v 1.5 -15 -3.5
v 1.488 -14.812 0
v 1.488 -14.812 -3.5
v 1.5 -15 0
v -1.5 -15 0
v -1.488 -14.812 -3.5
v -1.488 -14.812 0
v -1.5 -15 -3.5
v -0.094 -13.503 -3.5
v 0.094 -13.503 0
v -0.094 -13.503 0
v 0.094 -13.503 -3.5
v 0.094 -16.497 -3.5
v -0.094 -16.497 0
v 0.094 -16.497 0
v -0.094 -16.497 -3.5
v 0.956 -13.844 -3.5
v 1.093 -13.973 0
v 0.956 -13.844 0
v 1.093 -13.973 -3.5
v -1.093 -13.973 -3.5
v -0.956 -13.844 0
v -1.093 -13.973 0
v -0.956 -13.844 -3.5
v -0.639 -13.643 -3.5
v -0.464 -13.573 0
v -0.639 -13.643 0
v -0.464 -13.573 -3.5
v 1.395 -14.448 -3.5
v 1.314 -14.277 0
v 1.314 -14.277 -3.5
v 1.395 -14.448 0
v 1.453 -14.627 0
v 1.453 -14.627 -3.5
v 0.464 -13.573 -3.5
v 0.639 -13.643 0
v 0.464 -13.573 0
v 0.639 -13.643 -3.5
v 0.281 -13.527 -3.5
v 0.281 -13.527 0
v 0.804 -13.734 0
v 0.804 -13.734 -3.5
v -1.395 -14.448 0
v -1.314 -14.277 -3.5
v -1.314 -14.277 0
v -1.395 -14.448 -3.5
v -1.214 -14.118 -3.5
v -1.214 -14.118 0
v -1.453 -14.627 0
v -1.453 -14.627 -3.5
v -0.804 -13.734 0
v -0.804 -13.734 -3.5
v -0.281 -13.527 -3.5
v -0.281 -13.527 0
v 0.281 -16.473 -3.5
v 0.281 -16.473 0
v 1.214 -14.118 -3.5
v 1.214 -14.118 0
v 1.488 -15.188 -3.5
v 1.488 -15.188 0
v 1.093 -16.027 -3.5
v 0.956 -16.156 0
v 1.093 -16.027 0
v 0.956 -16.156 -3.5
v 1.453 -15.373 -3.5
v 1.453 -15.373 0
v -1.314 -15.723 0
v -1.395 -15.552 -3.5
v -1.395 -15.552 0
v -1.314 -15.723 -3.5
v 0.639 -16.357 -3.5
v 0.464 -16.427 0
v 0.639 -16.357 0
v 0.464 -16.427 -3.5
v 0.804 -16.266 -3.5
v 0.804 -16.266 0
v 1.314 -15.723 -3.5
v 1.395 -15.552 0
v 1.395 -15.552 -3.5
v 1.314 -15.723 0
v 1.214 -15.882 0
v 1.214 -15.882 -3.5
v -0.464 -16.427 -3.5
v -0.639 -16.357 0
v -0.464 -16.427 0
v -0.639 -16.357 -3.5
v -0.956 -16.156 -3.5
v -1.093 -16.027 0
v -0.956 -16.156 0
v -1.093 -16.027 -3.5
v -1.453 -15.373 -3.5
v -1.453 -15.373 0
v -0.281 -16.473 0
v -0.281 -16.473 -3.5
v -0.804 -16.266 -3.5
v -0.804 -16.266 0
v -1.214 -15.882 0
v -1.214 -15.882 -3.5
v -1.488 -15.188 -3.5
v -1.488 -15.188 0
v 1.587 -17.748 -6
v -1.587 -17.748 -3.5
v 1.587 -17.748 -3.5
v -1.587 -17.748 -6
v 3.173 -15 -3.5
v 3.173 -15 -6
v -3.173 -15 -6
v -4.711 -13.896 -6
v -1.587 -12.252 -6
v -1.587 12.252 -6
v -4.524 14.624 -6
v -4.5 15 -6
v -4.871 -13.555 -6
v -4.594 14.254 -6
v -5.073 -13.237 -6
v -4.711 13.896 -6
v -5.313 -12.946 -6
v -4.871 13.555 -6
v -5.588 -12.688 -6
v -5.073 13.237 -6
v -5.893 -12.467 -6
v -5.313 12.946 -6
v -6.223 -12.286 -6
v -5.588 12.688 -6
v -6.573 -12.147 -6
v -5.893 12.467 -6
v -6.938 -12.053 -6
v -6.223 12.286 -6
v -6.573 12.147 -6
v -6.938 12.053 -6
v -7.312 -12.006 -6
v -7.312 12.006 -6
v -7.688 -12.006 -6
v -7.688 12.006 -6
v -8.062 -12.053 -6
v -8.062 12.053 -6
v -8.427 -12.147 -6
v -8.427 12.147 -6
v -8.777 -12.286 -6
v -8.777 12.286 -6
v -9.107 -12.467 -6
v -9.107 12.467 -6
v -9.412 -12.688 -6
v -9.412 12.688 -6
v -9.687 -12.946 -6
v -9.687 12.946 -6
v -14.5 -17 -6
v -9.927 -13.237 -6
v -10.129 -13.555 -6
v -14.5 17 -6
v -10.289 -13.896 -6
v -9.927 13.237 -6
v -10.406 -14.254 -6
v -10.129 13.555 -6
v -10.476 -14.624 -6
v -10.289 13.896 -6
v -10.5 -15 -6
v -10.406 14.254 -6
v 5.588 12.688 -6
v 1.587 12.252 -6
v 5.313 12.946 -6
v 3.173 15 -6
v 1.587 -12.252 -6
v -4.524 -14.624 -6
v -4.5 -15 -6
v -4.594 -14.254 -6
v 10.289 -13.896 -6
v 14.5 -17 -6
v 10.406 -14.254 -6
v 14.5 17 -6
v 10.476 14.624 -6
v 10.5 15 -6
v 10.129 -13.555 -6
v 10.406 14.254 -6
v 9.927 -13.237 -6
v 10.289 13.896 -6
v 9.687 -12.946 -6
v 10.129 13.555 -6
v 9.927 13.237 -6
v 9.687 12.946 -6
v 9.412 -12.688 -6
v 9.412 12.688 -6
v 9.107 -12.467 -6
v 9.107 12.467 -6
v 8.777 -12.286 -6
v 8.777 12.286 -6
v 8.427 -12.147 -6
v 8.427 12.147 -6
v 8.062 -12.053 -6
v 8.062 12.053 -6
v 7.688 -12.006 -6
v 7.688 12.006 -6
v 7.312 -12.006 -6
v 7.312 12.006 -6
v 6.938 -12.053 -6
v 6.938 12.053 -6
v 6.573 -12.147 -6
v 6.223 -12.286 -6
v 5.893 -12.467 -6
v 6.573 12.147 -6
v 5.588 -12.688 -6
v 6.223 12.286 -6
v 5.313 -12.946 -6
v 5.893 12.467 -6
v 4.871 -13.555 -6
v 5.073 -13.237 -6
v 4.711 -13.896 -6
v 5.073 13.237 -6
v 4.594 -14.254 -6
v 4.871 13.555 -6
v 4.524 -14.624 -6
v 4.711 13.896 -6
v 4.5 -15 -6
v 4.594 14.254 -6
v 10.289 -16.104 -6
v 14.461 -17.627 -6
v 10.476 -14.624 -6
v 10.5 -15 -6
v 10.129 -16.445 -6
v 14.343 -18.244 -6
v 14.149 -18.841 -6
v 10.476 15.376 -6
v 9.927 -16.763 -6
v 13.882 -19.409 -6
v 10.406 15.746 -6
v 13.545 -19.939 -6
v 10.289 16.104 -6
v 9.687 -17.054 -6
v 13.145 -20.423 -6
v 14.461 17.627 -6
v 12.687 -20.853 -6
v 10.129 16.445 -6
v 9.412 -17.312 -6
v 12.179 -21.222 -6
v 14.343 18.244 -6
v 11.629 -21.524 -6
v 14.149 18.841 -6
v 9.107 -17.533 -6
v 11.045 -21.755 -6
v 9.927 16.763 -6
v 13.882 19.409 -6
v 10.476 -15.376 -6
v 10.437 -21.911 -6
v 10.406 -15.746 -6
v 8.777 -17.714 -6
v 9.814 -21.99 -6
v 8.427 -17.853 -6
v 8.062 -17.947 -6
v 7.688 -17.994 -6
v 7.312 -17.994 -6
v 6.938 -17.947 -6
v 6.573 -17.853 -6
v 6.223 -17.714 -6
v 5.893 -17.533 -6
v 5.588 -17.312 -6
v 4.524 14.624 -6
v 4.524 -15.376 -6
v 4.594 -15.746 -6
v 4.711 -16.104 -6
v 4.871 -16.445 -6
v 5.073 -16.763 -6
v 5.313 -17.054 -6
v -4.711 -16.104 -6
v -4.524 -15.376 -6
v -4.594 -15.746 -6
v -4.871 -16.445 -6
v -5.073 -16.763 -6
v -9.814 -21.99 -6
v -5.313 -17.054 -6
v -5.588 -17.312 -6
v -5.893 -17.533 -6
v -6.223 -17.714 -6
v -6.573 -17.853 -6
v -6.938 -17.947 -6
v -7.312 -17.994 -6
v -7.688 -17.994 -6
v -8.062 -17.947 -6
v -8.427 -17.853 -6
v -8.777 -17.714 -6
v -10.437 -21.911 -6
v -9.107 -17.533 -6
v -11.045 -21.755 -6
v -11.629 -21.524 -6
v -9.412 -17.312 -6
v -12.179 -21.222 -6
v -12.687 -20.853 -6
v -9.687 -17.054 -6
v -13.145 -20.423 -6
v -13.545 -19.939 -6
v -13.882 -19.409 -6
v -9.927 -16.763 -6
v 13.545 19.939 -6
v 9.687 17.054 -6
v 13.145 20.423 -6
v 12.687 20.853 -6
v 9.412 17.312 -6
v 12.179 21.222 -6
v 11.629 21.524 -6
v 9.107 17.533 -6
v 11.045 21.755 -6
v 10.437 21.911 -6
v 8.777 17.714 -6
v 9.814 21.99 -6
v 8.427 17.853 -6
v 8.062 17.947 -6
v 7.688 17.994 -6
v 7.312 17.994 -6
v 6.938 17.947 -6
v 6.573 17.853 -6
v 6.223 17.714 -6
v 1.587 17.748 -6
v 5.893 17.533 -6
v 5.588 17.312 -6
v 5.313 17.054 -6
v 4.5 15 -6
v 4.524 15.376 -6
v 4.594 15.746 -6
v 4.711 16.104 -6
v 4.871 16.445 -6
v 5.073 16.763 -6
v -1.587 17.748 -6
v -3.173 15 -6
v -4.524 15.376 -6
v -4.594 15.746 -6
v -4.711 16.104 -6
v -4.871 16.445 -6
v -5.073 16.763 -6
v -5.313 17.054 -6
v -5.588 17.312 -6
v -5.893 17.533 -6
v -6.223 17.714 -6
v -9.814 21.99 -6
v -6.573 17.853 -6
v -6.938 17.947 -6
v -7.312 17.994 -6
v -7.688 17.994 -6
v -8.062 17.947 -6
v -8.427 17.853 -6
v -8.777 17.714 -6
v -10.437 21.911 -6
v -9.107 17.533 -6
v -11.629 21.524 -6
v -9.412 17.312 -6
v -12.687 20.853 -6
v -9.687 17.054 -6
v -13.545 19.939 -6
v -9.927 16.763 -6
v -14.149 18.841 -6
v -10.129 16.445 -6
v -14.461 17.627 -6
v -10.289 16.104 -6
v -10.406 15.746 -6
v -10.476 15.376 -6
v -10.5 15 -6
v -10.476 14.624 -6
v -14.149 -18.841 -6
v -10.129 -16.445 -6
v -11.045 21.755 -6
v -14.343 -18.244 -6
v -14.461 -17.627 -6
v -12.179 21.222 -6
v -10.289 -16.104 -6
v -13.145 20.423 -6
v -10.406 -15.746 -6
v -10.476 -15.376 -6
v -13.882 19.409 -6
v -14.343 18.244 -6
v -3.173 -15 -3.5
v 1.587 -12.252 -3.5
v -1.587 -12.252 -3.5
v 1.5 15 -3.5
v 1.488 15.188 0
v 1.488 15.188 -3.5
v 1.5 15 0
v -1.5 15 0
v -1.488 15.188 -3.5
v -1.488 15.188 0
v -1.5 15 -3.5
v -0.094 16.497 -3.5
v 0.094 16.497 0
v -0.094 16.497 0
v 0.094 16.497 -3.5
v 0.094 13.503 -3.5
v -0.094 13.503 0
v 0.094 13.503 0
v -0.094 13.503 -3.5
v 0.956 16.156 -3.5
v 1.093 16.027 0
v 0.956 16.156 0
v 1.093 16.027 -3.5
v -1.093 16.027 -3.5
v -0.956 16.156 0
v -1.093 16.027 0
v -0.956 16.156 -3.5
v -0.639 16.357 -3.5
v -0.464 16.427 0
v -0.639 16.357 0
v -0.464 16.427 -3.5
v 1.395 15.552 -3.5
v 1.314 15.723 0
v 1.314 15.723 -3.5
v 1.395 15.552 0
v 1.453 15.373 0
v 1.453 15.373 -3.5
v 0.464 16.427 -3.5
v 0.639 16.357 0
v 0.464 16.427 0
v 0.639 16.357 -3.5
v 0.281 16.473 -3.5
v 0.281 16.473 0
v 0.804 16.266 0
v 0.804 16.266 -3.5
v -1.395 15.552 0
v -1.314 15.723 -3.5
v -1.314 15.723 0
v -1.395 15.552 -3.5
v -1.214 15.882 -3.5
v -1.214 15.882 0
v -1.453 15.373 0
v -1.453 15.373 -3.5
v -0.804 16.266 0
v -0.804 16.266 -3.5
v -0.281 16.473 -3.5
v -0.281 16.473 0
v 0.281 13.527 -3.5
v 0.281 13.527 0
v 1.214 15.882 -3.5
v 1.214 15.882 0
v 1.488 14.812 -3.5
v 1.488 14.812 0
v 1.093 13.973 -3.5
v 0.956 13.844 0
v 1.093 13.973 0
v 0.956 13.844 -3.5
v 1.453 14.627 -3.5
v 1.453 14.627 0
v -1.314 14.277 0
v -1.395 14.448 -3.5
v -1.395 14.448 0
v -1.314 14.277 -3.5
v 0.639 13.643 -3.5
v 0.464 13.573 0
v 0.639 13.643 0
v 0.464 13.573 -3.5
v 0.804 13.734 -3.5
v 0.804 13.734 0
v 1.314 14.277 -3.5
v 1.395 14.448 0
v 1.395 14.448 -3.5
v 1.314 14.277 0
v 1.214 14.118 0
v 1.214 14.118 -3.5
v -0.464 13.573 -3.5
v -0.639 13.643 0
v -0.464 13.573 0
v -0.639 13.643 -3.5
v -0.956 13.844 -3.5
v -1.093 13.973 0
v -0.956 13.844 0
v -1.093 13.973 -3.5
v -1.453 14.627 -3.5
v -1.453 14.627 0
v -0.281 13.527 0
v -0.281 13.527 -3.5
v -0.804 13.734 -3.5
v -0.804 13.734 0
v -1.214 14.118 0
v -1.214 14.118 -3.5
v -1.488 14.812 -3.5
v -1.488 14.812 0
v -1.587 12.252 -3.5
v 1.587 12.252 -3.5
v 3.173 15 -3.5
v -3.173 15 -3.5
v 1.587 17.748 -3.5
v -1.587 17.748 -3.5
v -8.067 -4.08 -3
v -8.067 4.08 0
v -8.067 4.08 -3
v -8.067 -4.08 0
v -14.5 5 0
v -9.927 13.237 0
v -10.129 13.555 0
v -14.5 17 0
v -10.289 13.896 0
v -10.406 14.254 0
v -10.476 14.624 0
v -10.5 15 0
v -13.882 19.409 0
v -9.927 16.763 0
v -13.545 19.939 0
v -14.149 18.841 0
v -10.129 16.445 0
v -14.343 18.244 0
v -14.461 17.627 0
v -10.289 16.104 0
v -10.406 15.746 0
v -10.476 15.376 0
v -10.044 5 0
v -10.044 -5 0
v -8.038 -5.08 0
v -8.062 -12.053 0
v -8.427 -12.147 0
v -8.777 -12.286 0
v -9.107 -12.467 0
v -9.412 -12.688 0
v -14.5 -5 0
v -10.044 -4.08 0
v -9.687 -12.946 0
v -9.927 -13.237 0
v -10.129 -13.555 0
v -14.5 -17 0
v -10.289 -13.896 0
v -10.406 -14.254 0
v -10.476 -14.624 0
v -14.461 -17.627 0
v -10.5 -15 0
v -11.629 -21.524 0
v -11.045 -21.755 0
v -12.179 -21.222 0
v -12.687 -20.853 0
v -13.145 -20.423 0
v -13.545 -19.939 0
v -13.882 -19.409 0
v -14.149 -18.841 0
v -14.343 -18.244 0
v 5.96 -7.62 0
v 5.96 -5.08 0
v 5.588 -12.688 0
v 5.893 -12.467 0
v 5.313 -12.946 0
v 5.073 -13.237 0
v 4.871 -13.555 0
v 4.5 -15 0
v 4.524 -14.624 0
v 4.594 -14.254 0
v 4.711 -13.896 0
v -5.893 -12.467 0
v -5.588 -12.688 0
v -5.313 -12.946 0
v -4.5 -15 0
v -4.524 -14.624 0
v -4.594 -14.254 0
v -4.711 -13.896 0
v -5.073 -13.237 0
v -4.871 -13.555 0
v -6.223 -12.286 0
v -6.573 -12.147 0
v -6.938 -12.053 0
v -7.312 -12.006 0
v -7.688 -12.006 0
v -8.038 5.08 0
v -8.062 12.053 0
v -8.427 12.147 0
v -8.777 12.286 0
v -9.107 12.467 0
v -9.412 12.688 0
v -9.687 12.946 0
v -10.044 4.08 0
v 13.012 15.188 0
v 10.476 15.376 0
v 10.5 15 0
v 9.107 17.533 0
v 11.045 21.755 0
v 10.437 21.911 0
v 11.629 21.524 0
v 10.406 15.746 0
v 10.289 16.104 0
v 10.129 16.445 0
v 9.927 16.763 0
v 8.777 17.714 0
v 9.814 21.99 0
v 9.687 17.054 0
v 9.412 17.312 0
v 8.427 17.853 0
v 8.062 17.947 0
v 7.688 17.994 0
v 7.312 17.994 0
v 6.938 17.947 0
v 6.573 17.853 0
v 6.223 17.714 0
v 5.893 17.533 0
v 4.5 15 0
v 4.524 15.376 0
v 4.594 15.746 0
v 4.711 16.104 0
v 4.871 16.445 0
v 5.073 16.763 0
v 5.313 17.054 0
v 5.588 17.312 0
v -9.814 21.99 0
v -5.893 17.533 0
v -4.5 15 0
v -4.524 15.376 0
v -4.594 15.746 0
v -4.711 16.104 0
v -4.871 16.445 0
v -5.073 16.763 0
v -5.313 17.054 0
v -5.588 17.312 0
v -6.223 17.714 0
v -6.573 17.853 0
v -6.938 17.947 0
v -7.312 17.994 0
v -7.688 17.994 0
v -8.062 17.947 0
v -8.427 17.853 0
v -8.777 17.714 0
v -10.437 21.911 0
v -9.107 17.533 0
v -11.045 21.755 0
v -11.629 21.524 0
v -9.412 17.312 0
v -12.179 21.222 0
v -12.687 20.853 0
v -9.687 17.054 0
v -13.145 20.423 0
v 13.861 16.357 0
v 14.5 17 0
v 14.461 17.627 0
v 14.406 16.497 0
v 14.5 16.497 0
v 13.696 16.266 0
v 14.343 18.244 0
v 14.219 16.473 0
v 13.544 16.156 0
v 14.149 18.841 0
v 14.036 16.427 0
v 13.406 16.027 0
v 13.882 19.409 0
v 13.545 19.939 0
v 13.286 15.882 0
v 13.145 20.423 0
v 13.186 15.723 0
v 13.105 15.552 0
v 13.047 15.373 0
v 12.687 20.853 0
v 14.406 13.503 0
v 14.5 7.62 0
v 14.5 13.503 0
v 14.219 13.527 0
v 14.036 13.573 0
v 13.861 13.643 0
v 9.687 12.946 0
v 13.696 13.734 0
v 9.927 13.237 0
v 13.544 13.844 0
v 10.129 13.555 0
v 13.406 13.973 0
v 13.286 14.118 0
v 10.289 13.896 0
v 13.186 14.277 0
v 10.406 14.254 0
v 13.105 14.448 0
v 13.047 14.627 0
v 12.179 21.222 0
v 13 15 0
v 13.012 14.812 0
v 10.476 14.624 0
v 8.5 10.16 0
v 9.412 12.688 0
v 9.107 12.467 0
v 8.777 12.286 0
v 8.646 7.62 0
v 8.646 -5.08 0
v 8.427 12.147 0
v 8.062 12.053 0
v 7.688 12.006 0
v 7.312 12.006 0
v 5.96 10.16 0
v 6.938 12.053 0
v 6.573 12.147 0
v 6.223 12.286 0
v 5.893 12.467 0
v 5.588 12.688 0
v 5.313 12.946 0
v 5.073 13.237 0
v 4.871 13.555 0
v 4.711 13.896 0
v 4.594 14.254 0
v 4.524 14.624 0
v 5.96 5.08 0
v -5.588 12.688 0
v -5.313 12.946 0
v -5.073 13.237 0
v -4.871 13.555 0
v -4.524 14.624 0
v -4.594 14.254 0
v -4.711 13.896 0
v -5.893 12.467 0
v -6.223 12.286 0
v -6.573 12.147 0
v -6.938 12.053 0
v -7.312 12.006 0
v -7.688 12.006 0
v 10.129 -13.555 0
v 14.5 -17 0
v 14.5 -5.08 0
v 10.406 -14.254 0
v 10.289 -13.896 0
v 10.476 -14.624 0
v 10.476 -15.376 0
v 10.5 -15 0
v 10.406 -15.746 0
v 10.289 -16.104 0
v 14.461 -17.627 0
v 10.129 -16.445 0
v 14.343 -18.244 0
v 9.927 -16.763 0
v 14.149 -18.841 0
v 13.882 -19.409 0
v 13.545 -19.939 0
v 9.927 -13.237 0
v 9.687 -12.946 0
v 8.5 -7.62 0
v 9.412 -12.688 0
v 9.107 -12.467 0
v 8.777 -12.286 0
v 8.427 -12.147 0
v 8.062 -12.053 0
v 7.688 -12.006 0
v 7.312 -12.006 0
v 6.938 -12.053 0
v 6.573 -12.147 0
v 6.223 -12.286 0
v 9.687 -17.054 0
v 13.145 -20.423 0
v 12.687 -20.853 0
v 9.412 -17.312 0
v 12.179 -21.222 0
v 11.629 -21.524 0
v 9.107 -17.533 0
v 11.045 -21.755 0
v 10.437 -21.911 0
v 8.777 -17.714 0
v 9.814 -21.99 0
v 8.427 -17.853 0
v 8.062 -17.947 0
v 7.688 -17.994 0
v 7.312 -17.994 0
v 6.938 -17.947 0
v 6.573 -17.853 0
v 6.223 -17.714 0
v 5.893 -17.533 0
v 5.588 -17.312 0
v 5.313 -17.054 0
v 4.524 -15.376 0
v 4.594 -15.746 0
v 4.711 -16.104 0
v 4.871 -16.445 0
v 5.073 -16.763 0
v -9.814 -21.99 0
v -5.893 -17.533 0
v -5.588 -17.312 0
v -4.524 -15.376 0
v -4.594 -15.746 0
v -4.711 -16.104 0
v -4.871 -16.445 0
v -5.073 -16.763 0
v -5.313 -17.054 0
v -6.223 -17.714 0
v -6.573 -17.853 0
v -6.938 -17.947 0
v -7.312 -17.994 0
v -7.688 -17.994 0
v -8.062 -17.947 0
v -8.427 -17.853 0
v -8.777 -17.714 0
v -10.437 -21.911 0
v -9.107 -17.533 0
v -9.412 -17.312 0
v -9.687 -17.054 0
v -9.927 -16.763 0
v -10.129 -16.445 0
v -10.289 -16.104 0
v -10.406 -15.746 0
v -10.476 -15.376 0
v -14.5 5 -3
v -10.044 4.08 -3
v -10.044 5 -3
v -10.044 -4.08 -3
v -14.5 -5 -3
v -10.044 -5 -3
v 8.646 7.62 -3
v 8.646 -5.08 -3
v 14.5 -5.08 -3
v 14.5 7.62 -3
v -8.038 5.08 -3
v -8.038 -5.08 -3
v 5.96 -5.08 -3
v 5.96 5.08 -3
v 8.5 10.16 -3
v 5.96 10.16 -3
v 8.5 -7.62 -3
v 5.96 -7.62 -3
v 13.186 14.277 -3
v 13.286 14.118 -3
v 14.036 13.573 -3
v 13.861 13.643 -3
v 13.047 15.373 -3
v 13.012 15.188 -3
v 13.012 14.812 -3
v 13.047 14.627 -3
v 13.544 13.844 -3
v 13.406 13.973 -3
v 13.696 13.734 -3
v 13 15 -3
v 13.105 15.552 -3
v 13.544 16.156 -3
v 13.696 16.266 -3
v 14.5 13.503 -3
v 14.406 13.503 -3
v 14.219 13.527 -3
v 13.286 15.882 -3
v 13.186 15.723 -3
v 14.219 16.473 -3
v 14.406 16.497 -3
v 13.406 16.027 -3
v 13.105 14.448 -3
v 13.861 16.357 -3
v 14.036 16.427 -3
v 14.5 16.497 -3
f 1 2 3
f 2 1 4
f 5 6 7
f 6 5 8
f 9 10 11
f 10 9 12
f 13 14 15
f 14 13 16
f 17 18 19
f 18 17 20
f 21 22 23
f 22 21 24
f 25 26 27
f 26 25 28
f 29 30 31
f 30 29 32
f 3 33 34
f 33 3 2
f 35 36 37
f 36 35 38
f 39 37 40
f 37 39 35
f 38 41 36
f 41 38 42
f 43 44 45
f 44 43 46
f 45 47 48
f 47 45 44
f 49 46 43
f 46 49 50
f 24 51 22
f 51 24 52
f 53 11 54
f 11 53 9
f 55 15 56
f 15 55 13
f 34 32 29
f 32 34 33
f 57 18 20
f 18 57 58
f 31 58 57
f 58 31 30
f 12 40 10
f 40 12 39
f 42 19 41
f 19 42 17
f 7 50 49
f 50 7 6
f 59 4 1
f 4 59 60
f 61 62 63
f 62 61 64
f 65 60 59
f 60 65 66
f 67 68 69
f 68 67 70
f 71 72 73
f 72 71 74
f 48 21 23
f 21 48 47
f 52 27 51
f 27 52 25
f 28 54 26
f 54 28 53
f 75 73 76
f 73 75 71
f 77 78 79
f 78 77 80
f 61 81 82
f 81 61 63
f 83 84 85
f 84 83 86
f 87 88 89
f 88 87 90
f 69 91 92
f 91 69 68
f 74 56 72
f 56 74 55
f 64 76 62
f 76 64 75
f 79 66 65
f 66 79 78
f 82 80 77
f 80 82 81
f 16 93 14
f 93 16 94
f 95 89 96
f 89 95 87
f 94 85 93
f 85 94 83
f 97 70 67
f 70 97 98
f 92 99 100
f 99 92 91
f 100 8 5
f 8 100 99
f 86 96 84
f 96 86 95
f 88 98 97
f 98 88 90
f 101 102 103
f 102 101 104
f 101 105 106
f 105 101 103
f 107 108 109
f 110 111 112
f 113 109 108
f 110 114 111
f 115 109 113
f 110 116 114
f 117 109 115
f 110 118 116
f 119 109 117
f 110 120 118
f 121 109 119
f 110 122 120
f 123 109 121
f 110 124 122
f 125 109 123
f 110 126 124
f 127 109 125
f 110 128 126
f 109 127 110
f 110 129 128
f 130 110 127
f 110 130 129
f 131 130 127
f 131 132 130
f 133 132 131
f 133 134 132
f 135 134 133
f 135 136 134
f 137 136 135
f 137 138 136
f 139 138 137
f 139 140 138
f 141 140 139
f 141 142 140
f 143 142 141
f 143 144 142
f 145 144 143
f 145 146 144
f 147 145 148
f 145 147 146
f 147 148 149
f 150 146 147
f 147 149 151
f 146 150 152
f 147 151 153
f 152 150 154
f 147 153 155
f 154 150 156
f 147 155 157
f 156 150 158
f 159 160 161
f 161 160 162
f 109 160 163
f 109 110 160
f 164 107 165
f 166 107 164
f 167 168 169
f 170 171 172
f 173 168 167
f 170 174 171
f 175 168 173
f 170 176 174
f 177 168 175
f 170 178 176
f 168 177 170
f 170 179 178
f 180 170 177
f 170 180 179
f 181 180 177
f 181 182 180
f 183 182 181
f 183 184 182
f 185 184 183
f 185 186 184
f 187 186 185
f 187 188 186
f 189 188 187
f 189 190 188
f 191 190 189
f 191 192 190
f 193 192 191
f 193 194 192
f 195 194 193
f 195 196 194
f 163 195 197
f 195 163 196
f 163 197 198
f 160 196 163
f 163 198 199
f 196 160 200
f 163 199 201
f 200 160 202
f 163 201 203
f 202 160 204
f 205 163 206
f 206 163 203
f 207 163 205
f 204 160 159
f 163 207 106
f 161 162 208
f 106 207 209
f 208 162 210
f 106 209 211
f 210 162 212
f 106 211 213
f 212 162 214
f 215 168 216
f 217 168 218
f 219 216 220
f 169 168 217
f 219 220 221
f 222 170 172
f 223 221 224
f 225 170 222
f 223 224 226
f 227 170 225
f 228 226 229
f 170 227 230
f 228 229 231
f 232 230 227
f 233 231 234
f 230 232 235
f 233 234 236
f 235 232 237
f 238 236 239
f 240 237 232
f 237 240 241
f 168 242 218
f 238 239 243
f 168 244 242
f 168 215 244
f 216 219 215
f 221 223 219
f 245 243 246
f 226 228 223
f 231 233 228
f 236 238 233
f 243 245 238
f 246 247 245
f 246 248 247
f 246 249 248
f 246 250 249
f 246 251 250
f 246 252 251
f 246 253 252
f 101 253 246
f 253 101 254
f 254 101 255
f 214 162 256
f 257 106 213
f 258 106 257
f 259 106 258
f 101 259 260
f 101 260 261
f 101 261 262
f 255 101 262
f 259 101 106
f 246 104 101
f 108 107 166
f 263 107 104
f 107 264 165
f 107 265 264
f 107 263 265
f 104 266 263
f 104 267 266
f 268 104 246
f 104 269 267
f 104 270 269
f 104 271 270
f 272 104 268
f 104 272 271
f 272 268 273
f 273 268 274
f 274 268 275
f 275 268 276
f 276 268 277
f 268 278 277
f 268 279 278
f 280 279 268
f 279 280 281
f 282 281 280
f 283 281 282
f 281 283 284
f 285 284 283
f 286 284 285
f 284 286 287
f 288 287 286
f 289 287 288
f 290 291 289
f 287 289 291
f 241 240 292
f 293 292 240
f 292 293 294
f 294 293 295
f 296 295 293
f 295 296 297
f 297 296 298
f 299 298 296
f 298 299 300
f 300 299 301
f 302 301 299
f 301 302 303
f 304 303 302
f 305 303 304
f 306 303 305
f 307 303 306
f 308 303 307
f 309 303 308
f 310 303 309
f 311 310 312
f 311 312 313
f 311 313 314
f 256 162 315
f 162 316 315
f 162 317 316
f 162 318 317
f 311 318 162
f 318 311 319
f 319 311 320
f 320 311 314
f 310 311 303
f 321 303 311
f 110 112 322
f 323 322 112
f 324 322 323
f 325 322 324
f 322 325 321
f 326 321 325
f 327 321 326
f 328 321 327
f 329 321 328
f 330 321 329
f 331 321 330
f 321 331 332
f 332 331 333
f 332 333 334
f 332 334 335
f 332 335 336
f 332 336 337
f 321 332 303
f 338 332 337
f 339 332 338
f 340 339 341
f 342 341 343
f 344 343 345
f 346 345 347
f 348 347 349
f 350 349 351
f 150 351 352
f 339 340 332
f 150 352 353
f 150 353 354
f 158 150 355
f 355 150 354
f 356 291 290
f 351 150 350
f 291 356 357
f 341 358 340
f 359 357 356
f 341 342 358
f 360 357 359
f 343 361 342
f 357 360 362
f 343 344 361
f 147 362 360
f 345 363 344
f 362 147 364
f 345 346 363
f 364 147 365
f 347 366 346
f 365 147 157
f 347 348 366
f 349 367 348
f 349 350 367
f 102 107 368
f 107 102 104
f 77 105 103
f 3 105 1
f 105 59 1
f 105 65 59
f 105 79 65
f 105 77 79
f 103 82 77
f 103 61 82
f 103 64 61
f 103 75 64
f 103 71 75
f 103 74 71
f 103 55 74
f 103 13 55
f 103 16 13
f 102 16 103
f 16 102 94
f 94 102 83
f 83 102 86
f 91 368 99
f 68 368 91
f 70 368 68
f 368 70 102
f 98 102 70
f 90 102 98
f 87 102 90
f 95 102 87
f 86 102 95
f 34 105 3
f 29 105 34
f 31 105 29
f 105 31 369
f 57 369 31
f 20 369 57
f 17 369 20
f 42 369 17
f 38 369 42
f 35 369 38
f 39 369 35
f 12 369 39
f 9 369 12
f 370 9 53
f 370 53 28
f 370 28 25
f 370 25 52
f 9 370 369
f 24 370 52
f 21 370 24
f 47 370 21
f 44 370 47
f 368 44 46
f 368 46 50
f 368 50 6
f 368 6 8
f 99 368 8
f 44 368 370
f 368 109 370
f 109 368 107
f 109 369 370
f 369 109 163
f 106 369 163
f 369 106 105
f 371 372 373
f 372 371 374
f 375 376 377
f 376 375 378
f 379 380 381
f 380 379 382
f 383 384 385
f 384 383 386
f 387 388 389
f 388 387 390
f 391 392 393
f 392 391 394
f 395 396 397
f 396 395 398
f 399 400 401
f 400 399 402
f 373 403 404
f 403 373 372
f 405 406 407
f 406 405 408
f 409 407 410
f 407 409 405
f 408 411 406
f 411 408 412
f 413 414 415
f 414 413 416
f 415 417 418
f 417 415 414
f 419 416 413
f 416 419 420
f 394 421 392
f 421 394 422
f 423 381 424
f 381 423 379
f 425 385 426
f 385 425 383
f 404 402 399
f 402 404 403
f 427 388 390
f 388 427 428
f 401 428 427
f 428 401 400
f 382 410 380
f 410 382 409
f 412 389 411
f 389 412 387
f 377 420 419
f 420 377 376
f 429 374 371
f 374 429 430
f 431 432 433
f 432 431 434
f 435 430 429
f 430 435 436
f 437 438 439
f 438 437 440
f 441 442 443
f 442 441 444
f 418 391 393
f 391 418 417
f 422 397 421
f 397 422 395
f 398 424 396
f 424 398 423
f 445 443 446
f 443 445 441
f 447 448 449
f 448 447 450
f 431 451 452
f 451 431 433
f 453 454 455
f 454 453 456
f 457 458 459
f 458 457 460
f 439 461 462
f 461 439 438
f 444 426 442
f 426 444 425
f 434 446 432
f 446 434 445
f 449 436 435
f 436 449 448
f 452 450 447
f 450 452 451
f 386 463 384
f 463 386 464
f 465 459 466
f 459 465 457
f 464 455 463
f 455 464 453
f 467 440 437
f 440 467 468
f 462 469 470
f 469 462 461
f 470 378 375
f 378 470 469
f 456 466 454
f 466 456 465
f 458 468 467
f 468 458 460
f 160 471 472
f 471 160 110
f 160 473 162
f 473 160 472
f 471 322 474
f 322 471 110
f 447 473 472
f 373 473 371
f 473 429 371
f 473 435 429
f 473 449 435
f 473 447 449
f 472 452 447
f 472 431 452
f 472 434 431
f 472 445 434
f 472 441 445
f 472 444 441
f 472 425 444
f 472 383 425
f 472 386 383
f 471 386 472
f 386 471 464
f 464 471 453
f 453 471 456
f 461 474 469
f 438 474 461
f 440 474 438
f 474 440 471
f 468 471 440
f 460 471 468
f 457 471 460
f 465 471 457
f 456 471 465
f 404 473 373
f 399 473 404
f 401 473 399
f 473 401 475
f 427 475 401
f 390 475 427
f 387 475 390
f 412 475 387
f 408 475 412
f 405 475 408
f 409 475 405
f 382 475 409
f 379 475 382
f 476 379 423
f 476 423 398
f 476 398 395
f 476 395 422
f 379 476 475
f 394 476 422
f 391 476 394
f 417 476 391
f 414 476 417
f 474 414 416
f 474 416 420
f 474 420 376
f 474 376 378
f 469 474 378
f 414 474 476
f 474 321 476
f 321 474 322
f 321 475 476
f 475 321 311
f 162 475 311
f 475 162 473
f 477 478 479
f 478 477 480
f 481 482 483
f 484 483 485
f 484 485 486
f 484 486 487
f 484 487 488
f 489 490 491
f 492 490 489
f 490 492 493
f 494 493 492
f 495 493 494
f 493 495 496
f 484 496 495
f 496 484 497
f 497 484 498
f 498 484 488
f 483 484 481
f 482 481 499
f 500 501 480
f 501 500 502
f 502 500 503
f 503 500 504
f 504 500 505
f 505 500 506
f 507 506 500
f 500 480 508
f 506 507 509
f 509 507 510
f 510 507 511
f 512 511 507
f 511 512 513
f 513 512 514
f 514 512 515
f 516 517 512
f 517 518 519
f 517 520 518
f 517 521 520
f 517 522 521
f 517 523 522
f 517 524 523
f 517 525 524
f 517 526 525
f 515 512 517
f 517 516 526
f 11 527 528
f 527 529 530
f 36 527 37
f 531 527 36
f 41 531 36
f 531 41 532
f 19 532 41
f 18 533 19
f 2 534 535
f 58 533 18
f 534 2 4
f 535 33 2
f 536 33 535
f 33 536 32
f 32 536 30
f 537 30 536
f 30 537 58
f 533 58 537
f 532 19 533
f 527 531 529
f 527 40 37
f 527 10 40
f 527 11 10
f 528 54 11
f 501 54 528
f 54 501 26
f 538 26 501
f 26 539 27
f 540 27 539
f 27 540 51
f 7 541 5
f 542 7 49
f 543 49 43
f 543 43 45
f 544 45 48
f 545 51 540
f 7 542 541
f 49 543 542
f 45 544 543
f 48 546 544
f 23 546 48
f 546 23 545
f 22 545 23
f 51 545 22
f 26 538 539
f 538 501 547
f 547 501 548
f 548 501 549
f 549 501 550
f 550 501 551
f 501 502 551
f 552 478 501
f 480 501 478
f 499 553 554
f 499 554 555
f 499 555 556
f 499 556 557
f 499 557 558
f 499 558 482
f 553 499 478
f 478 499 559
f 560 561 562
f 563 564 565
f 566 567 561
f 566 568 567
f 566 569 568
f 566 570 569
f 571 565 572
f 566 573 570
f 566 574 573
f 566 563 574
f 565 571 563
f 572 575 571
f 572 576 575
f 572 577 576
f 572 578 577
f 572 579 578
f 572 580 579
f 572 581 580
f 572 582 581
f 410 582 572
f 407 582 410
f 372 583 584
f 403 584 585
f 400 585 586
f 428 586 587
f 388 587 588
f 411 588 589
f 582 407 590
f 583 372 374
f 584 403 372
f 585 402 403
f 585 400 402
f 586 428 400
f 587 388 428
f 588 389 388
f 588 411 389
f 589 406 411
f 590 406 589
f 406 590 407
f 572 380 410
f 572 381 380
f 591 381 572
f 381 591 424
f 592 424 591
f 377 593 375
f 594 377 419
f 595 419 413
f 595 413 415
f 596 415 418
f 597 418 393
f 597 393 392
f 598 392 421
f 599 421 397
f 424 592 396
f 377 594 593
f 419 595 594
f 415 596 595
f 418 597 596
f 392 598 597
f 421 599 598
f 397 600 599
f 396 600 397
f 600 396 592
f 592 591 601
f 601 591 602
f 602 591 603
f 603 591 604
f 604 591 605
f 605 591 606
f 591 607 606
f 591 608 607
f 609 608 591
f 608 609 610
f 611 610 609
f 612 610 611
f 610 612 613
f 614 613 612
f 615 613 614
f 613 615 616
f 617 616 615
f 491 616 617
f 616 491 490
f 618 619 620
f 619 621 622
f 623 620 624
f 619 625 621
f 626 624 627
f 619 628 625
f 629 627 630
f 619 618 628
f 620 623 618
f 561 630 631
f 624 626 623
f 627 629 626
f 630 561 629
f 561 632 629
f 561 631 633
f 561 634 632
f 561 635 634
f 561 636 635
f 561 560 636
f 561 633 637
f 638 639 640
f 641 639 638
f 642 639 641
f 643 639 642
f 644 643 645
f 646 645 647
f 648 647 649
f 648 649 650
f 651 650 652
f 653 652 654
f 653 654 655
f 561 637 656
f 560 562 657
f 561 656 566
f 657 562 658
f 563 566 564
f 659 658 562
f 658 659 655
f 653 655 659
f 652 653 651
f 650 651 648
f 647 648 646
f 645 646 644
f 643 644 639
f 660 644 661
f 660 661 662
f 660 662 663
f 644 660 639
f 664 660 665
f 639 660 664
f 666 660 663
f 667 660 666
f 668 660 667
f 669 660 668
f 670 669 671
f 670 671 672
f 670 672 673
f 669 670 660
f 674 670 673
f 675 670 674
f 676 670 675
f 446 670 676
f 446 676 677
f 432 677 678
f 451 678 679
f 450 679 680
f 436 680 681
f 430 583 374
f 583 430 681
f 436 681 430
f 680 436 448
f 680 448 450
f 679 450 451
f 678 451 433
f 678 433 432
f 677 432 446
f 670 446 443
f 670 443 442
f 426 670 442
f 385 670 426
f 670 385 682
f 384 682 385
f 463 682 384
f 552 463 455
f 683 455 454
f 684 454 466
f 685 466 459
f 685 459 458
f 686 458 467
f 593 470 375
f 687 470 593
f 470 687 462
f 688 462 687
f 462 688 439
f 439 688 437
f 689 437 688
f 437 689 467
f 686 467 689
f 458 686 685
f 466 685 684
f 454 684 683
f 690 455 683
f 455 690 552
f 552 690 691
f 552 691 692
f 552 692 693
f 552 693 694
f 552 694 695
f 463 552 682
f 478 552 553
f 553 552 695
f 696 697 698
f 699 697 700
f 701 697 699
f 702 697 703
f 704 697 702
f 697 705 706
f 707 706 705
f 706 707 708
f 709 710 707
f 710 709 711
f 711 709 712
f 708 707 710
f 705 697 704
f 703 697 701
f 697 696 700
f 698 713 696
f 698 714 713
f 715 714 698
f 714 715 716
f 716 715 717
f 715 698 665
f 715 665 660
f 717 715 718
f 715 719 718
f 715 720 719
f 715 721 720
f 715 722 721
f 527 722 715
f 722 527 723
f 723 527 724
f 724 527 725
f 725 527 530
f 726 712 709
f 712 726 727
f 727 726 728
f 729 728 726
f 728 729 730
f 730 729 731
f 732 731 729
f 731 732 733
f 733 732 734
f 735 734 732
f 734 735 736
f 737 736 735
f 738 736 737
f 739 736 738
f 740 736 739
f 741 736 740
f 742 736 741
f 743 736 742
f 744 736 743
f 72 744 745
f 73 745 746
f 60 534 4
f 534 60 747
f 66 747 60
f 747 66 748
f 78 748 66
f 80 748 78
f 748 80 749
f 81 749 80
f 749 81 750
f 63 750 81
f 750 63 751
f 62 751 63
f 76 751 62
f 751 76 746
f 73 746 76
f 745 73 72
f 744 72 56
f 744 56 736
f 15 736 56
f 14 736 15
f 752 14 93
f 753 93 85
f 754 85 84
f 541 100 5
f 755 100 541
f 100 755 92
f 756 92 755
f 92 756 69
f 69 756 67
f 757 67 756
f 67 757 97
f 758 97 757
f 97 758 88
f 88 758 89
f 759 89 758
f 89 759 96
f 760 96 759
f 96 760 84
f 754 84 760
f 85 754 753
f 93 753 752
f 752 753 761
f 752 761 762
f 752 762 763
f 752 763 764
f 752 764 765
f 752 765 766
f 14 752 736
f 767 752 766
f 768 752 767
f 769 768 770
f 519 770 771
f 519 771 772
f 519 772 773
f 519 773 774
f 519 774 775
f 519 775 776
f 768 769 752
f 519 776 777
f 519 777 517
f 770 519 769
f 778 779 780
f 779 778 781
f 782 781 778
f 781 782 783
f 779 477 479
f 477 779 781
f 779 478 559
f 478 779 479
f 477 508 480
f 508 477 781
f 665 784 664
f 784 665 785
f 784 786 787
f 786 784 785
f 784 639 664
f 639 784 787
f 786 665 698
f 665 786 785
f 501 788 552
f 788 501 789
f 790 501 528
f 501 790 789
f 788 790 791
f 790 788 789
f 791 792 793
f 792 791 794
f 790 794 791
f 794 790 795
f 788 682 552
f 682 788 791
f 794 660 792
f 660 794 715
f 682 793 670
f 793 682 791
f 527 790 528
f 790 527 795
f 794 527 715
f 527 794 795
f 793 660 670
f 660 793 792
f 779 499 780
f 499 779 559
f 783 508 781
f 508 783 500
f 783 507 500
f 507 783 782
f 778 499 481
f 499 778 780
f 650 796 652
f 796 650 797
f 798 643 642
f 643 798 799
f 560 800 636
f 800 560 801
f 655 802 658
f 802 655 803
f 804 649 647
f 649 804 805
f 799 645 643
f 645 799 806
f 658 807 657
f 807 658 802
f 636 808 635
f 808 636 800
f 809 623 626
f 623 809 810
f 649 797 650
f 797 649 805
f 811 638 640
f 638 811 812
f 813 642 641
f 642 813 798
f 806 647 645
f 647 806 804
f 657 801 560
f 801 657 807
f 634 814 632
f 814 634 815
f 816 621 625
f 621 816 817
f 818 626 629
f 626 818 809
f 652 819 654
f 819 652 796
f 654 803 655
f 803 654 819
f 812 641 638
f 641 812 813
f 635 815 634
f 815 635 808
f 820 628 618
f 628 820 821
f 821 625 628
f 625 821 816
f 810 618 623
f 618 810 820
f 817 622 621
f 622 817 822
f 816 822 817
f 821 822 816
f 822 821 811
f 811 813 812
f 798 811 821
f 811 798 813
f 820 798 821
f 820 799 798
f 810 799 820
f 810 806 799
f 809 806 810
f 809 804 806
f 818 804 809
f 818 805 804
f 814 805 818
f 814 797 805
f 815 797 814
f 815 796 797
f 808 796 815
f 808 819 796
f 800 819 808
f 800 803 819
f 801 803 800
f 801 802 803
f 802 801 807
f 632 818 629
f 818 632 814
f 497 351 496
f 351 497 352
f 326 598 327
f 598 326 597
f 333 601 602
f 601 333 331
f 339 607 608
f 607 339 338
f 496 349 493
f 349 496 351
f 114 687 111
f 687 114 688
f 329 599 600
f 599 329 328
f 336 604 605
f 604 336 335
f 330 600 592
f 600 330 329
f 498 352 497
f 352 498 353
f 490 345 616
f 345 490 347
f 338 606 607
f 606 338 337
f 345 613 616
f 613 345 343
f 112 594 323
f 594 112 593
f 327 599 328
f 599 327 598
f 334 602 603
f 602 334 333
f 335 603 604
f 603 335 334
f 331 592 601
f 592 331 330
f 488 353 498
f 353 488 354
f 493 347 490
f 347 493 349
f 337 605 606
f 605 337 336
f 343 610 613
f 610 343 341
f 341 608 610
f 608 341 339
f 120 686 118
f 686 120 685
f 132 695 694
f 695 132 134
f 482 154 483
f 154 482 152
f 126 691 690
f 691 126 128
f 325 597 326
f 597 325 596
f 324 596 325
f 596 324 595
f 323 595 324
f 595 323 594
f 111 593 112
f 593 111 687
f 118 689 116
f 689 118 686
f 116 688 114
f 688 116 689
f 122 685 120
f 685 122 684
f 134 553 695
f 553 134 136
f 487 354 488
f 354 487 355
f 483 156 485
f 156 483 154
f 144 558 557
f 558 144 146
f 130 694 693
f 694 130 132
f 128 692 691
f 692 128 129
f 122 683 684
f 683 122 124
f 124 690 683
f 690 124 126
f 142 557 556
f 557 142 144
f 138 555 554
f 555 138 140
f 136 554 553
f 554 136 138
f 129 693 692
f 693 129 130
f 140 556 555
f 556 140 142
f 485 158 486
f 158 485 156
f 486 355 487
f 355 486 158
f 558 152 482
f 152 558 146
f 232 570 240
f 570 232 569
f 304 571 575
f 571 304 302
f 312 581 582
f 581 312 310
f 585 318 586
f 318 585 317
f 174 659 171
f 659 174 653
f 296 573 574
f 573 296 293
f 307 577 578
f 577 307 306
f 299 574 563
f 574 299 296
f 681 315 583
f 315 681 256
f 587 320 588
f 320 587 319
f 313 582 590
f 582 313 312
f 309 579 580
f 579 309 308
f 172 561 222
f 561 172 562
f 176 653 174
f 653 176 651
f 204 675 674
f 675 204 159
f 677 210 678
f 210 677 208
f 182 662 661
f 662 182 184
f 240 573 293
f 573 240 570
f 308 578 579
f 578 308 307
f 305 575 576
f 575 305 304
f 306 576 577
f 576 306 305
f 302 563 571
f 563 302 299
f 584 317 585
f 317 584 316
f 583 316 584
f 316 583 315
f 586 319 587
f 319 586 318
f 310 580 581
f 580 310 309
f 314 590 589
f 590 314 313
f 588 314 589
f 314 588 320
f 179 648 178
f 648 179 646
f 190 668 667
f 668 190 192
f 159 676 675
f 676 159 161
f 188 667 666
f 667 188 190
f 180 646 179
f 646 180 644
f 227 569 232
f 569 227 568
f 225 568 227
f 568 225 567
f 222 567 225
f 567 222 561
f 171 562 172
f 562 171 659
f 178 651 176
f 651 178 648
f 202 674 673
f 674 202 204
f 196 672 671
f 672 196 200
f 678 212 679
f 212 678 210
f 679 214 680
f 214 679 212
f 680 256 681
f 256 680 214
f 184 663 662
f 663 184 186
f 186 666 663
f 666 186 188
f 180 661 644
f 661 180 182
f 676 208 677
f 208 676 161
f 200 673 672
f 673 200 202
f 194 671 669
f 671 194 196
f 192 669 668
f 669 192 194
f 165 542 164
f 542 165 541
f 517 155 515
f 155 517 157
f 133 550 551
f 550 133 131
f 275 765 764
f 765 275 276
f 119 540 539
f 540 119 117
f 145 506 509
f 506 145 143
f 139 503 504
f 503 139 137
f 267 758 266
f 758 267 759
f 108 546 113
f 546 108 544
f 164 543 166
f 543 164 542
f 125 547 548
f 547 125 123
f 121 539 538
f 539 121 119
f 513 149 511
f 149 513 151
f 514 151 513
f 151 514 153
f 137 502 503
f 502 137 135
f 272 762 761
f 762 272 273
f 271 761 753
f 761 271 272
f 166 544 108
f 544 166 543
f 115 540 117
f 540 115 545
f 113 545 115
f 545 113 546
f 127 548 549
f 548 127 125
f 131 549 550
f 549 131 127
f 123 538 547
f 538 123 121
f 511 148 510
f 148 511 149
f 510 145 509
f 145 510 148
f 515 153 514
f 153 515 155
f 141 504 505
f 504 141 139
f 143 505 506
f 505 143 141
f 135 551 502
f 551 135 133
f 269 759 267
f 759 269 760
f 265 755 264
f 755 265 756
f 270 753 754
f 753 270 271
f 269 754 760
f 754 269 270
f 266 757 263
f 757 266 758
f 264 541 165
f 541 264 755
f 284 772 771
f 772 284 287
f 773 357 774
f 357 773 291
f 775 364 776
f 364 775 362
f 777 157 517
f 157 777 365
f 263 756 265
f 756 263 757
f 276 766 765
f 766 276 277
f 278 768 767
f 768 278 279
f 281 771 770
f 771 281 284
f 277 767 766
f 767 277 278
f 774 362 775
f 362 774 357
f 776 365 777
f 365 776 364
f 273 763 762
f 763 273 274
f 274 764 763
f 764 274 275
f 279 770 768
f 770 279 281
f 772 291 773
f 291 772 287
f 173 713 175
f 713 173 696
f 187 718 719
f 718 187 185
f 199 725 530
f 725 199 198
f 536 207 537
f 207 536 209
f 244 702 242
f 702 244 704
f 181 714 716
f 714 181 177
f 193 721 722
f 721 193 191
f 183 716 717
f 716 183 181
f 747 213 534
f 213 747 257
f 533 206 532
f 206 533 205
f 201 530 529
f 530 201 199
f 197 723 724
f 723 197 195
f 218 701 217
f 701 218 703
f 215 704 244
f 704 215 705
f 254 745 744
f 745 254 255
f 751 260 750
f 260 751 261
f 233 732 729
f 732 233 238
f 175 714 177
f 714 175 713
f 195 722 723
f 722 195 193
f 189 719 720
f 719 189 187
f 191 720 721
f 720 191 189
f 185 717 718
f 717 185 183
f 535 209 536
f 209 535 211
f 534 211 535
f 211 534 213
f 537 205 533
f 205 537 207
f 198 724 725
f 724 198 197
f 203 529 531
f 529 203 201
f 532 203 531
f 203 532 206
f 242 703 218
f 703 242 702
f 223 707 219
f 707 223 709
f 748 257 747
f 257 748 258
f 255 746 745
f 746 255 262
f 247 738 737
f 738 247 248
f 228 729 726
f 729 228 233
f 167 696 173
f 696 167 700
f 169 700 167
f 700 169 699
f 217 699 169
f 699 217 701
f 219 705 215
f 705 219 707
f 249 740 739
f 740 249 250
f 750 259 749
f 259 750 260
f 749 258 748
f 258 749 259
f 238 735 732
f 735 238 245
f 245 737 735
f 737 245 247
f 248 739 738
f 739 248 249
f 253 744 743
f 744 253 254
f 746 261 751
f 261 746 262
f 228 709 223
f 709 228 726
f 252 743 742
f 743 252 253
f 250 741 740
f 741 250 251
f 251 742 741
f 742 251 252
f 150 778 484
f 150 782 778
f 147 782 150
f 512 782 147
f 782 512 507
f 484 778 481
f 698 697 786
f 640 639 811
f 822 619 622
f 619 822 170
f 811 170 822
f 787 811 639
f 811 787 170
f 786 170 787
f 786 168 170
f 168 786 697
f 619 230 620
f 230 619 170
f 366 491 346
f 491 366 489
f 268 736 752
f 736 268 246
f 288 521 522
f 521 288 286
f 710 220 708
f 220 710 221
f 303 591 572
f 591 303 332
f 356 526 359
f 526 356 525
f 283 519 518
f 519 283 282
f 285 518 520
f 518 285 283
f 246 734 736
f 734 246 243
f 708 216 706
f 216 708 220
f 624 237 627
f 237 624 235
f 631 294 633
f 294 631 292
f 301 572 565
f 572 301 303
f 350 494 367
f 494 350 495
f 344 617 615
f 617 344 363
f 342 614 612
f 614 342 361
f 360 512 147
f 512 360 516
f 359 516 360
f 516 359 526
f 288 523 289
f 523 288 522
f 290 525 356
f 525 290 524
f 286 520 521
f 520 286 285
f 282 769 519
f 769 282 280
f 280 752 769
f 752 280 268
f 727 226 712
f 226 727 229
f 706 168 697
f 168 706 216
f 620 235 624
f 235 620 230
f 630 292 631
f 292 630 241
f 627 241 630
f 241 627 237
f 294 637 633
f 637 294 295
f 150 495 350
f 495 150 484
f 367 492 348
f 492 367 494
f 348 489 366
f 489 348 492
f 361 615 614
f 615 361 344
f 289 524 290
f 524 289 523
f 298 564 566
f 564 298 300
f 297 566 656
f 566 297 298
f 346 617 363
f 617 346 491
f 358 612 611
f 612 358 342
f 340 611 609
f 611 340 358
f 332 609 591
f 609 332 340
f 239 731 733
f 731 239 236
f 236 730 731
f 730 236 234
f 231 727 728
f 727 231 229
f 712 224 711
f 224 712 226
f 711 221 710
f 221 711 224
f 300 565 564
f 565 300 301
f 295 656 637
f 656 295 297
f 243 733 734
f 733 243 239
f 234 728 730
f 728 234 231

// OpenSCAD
$fn = 50;


difference() {
	union() {
		translate(v = [0, 0, -6]) {
			hull() {
				translate(v = [-9.5000000000, 17.0000000000, 0]) {
					cylinder(h = 6, r = 5);
				}
				translate(v = [9.5000000000, 17.0000000000, 0]) {
					cylinder(h = 6, r = 5);
				}
				translate(v = [-9.5000000000, -17.0000000000, 0]) {
					cylinder(h = 6, r = 5);
				}
				translate(v = [9.5000000000, -17.0000000000, 0]) {
					cylinder(h = 6, r = 5);
				}
			}
		}
	}
	union() {
		translate(v = [0, -15, -6]) {
			rotate(a = [0, 0, 0]) {
				difference() {
					union() {
						translate(v = [0, 0, -50.0000000000]) {
							cylinder(h = 100, r = 1.5000000000);
						}
						translate(v = [0, 0, -50.0000000000]) {
							cylinder(h = 100, r = 1.5000000000);
						}
						linear_extrude(height = 2.5000000000) {
							polygon(points = [[3.1735000000, 0.0000000000], [1.5867500000, 2.7483316189], [-1.5867500000, 2.7483316189], [-3.1735000000, 0.0000000000], [-1.5867500000, -2.7483316189], [1.5867500000, -2.7483316189]]);
						}
						translate(v = [0, 0, -50.0000000000]) {
							cylinder(h = 100, r = 1.5000000000);
						}
					}
					union();
				}
			}
		}
		translate(v = [0, 15, -6]) {
			rotate(a = [0, 0, 0]) {
				difference() {
					union() {
						translate(v = [0, 0, -50.0000000000]) {
							cylinder(h = 100, r = 1.5000000000);
						}
						translate(v = [0, 0, -50.0000000000]) {
							cylinder(h = 100, r = 1.5000000000);
						}
						linear_extrude(height = 2.5000000000) {
							polygon(points = [[3.1735000000, 0.0000000000], [1.5867500000, 2.7483316189], [-1.5867500000, 2.7483316189], [-3.1735000000, 0.0000000000], [-1.5867500000, -2.7483316189], [1.5867500000, -2.7483316189]]);
						}
						translate(v = [0, 0, -50.0000000000]) {
							cylinder(h = 100, r = 1.5000000000);
						}
					}
					union();
				}
			}
		}
		translate(v = [15.0000000000, 0, -3]) {
			rotate(a = [0, 0, 180]) {
				difference() {
					union() {
						#translate(v = [23.0670000000, -4.0800000000, 0]) {
							cube(size = [5, 8.1600000000, 3]);
						}
						#translate(v = [0.3540000000, -7.6200000000, 0]) {
							cube(size = [6, 12.7000000000, 3]);
						}
						#translate(v = [9.0380000000, -5.0800000000, 0]) {
							cube(size = [14, 10.1600000000, 3]);
						}
						#translate(v = [6.5000000000, -10.1600000000, 0]) {
							cube(size = [2.5400000000, 17.7800000000, 3]);
						}
						#translate(v = [25.0440000000, -5.0000000000, 0]) {
							cube(size = [7, 10, 3]);
						}
						#translate(v = [0.5000000000, -15, 0.0000000000]) {
							cylinder(h = 3, r = 1.5000000000);
						}
					}
					union();
				}
			}
		}
		translate(v = [-7.5000000000, 15.0000000000, -50.0000000000]) {
			cylinder(h = 100, r = 3.0000000000);
		}
		translate(v = [7.5000000000, 15.0000000000, -50.0000000000]) {
			cylinder(h = 100, r = 3.0000000000);
		}
		translate(v = [-7.5000000000, -15.0000000000, -50.0000000000]) {
			cylinder(h = 100, r = 3.0000000000);
		}
		translate(v = [7.5000000000, -15.0000000000, -50.0000000000]) {
			cylinder(h = 100, r = 3.0000000000);
		}
	}
}
